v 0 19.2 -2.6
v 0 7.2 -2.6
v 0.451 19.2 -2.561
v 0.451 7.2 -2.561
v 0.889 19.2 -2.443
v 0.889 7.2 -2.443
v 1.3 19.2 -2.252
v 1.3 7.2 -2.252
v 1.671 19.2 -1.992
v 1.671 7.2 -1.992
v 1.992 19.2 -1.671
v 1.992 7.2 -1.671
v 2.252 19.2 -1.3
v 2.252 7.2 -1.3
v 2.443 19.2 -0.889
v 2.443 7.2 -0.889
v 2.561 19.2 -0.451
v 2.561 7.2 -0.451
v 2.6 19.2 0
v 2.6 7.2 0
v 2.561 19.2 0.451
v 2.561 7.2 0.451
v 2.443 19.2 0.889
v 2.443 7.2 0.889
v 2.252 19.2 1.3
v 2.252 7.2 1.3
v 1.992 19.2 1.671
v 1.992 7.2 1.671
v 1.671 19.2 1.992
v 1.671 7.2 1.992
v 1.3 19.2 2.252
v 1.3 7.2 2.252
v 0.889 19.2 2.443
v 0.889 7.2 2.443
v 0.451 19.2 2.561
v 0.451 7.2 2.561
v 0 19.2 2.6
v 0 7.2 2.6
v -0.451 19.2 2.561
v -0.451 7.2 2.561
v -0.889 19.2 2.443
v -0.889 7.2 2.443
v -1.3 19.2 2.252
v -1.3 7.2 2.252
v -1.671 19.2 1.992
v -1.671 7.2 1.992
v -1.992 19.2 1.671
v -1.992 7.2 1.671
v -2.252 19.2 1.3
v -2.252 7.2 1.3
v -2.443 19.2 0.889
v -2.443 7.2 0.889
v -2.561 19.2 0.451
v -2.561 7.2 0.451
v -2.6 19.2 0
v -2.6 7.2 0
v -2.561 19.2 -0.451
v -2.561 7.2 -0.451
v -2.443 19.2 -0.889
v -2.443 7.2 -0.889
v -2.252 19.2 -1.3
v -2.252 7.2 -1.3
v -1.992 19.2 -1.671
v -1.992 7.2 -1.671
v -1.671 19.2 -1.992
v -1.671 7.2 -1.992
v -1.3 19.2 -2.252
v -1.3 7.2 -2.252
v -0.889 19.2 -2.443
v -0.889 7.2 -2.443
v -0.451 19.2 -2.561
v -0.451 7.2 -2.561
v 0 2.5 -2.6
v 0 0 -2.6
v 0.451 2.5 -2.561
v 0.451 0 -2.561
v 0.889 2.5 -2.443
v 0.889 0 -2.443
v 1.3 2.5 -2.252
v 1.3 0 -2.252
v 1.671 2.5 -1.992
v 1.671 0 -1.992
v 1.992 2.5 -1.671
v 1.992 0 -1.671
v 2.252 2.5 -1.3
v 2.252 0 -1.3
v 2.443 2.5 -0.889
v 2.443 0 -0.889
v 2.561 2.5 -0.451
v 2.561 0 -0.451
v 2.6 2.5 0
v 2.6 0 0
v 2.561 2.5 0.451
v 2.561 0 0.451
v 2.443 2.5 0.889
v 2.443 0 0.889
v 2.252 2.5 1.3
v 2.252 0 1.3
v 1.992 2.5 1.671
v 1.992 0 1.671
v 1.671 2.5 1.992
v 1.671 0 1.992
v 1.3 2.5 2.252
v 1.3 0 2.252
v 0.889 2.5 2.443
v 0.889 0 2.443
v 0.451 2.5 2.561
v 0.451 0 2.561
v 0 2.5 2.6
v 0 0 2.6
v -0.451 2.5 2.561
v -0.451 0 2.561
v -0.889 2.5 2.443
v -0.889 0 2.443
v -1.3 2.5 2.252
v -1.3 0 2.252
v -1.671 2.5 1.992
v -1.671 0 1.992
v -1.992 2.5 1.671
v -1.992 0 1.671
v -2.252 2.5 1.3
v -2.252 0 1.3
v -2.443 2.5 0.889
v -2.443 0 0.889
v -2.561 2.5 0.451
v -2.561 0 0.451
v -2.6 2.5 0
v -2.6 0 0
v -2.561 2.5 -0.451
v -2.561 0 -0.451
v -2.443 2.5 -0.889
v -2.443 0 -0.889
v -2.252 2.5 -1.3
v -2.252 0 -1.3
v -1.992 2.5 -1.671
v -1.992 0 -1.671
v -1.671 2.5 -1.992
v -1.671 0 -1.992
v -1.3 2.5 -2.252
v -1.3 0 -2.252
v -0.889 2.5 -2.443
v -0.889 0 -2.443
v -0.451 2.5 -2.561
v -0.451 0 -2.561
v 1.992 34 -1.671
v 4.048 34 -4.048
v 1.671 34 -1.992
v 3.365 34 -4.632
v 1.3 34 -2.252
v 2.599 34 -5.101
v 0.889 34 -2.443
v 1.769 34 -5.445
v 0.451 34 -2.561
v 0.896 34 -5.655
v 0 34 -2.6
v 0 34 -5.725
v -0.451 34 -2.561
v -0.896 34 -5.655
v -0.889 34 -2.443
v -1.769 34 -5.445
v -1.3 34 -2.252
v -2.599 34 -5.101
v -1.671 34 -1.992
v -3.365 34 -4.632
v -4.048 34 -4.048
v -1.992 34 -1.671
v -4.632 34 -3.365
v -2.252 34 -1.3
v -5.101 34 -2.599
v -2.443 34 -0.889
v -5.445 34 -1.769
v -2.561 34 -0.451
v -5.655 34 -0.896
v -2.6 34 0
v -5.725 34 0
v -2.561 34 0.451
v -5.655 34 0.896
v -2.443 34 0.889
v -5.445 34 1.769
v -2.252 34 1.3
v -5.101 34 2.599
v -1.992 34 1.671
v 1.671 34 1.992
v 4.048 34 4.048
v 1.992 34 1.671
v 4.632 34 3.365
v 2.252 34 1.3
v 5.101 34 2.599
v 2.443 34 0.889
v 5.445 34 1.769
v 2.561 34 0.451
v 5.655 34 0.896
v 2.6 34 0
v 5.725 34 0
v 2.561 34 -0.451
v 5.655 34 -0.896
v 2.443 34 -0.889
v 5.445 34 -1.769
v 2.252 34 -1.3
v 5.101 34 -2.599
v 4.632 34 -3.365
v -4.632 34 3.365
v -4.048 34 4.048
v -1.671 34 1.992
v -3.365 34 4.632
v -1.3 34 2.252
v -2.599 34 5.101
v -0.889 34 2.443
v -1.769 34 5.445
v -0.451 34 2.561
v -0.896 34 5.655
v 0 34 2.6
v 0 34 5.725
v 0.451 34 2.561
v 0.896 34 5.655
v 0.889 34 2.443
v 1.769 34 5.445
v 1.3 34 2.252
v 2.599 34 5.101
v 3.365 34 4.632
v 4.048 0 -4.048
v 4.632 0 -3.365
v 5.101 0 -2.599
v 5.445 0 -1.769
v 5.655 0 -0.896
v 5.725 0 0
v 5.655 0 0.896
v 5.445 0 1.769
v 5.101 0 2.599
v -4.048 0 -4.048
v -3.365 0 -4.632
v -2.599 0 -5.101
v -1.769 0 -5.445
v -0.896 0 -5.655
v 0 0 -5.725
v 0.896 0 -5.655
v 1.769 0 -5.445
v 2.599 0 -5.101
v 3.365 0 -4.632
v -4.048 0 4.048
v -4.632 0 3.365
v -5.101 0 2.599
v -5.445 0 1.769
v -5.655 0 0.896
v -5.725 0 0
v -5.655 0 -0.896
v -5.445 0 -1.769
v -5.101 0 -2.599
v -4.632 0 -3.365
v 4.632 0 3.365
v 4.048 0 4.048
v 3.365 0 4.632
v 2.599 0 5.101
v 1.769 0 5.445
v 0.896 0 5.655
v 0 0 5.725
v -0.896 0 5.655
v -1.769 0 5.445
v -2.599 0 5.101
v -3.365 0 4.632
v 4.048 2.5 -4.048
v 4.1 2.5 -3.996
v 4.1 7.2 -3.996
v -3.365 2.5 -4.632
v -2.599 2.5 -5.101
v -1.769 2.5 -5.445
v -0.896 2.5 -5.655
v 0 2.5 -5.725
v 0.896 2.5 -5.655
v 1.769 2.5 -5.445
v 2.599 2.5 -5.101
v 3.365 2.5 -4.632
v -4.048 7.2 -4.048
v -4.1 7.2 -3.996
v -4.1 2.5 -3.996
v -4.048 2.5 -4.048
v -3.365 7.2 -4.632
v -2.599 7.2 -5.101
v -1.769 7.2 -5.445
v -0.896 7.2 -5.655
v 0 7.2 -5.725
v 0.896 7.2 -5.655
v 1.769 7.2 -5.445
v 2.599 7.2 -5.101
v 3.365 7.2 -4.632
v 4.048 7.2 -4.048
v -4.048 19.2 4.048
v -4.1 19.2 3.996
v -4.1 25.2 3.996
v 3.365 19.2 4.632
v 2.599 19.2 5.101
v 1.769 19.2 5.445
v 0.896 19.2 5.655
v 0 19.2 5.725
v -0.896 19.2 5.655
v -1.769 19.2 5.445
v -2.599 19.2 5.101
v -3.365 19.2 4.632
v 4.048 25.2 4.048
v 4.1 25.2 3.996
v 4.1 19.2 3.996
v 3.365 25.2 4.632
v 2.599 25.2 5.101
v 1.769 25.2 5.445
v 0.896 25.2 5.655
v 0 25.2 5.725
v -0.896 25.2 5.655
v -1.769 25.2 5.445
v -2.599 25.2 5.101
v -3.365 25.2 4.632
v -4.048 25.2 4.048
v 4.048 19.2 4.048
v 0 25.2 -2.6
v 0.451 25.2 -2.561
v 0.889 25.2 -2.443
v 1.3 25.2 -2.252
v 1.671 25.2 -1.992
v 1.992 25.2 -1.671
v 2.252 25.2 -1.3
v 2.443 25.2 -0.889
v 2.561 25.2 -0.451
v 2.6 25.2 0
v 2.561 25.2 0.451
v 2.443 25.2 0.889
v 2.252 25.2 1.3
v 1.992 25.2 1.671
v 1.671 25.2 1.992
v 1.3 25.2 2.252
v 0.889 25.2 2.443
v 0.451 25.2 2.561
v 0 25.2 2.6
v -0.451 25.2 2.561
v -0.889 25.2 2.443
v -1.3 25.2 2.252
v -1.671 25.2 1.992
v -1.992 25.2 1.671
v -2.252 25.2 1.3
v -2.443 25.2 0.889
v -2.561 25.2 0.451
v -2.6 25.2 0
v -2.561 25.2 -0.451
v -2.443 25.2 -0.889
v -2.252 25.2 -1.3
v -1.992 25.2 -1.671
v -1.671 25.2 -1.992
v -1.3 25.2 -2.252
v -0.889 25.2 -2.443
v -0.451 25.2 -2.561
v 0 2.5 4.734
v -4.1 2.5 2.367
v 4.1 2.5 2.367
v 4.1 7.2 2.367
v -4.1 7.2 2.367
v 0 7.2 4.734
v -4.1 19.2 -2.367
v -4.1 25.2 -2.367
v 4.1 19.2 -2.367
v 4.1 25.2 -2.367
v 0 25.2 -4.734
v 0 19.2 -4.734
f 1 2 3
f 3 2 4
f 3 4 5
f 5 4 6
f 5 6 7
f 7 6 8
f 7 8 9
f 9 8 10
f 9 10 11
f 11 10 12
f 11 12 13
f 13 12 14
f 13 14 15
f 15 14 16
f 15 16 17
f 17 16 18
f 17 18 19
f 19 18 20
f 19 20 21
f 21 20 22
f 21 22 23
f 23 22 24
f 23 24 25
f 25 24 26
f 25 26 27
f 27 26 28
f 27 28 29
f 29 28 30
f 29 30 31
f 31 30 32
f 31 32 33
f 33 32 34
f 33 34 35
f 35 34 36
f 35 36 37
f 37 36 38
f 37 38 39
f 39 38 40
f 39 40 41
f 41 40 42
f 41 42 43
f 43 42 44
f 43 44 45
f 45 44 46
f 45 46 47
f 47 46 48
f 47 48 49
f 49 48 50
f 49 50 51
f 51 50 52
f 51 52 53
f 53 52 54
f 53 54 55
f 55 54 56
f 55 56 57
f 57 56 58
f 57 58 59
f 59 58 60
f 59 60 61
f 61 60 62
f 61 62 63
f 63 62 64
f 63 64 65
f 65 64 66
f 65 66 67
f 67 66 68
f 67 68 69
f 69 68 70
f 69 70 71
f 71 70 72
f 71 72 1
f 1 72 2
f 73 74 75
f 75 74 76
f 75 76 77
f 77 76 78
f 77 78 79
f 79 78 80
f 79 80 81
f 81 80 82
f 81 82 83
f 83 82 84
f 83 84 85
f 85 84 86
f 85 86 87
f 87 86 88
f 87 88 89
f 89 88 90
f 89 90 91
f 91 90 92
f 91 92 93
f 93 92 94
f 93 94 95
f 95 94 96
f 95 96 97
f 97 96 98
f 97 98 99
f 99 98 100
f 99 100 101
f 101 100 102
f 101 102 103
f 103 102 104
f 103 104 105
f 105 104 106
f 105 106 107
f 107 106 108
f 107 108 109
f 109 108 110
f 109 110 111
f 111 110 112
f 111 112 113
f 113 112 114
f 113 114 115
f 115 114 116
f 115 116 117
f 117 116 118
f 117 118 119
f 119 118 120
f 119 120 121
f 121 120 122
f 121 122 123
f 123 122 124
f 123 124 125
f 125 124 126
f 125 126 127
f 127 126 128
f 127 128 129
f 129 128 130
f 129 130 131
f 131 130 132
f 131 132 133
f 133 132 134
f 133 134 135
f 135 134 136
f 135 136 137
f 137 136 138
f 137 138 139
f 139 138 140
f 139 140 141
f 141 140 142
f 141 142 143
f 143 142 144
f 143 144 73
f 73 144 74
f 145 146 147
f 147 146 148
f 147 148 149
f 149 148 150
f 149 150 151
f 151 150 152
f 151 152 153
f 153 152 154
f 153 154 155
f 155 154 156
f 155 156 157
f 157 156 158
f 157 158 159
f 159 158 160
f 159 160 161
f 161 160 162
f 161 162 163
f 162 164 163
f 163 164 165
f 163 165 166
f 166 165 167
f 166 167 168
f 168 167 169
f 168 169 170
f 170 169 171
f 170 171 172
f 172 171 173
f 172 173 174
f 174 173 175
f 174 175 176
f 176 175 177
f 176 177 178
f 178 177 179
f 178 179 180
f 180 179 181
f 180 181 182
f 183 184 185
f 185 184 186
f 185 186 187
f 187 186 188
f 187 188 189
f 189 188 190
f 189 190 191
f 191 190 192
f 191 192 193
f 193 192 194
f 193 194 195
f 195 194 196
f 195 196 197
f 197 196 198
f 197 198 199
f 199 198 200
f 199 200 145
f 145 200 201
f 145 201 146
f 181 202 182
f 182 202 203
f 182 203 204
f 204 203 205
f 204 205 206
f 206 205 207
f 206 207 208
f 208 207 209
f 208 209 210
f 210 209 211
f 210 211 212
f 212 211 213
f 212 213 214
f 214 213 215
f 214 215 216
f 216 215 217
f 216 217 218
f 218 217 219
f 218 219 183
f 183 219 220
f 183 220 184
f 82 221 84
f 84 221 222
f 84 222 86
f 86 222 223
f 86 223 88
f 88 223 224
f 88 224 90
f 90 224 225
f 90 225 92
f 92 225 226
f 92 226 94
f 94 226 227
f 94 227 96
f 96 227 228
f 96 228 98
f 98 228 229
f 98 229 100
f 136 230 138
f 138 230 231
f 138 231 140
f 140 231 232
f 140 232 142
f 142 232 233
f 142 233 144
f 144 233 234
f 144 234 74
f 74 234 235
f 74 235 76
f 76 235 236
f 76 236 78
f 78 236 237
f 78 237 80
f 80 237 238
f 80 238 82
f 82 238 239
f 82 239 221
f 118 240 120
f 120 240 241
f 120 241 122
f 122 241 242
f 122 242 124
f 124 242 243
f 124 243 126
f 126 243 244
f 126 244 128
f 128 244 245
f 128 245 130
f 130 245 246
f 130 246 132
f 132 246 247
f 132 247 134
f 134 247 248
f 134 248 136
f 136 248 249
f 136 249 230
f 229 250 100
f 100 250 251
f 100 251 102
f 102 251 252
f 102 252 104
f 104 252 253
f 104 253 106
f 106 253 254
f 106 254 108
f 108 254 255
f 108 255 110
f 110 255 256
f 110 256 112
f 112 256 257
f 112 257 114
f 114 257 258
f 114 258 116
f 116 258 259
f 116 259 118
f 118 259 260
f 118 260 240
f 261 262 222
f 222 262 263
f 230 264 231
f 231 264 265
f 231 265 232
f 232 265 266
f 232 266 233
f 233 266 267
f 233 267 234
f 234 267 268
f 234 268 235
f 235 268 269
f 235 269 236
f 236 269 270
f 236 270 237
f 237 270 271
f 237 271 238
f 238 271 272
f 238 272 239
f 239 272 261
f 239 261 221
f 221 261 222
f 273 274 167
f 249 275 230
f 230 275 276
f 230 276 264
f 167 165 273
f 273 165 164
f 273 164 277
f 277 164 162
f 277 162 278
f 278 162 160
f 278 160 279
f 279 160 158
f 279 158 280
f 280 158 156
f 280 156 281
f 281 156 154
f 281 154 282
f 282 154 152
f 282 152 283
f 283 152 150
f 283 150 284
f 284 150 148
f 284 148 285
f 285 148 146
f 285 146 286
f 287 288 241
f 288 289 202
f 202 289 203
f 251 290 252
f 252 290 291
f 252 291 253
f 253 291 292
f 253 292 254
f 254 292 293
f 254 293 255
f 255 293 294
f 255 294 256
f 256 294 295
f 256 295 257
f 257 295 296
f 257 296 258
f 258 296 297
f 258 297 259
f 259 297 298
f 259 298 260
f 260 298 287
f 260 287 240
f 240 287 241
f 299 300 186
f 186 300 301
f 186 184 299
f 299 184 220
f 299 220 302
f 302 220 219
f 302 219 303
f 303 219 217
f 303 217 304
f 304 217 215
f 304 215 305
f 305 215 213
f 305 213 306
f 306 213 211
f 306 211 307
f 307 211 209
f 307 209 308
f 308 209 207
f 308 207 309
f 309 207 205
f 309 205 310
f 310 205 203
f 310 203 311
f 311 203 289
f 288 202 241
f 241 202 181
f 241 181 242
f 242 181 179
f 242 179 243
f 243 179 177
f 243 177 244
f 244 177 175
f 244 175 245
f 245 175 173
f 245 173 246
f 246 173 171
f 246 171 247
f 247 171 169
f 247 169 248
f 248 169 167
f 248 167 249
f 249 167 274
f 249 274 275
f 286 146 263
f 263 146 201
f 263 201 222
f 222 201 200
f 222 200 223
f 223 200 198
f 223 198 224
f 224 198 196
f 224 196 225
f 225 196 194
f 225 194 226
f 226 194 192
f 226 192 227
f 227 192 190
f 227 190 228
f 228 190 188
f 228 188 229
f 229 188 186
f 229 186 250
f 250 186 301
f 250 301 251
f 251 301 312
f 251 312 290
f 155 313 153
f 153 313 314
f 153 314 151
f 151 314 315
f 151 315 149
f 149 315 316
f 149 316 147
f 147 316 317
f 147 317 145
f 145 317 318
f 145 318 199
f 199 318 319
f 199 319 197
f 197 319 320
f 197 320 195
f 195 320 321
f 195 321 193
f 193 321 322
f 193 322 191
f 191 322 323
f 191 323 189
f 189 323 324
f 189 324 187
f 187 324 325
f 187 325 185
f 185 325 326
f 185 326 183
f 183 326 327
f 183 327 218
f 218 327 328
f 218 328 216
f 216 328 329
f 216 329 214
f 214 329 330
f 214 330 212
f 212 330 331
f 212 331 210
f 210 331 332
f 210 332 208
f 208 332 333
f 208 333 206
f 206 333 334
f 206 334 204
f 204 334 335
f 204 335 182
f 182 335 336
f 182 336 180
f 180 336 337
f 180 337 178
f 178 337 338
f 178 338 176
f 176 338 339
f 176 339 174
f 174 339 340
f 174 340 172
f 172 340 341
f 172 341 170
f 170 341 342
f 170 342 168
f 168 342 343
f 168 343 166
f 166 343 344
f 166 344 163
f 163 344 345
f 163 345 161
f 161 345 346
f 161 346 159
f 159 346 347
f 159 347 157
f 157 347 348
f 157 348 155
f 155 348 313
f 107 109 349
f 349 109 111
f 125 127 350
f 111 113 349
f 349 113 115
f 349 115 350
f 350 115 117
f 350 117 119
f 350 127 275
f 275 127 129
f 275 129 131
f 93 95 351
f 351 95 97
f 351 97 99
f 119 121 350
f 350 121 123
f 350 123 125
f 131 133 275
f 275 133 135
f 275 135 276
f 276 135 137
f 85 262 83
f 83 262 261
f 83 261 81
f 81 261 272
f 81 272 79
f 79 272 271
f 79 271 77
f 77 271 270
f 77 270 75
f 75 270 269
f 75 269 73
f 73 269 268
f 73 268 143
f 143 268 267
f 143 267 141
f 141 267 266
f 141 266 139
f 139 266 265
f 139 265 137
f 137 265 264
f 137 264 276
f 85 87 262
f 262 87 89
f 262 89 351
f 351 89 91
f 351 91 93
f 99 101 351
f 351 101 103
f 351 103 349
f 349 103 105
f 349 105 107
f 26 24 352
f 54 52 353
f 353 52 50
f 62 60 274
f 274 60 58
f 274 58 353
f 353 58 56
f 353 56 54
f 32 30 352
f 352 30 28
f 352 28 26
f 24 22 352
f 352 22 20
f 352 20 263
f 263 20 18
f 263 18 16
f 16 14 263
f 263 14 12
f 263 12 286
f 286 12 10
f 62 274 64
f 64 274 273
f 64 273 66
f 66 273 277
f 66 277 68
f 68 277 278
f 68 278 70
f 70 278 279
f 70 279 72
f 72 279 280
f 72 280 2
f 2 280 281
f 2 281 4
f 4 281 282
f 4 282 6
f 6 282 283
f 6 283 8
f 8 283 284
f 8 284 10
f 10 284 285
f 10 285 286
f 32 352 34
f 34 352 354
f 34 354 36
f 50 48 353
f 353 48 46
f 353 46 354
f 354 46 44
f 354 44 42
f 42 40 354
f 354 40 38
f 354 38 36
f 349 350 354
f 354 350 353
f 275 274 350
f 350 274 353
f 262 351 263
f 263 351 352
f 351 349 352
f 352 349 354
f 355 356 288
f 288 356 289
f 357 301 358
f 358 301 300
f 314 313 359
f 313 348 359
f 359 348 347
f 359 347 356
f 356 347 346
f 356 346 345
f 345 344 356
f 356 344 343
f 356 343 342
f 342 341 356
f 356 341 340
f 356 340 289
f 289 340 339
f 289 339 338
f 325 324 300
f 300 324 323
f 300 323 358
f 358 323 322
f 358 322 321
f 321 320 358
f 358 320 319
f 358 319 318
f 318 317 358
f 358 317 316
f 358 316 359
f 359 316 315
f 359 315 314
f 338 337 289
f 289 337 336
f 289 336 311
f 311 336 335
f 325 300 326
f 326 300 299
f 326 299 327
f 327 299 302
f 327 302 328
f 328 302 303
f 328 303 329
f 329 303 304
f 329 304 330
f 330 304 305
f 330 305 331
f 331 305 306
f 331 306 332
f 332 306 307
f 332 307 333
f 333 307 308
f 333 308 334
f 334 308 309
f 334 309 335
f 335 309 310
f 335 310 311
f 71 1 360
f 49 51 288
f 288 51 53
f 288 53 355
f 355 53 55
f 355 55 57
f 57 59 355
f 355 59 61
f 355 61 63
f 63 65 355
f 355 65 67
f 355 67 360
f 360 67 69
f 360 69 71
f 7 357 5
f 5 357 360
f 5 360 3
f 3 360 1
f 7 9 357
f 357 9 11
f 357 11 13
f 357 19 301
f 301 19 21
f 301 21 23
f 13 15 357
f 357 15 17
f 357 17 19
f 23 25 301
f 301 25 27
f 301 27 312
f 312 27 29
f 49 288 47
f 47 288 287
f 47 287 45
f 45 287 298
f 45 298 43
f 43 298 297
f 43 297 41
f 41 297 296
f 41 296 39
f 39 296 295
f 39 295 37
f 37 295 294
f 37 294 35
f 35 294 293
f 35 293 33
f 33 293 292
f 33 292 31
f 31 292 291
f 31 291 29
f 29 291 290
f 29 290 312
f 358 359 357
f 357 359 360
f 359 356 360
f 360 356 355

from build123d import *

# Parameters (mm, degrees)
SKETCH1_R           = 5.725
SKETCH1_R_2         = 3
BOSS_EXTRUDE1_DEPTH = 34
SKETCH2_R           = 5.725
BOSS_EXTRUDE2_DEPTH = 34
SKETCH3_R           = 2.6
CUT_EXTRUDE1_DEPTH  = 40
CUT_EXTRUDE2_DEPTH  = 4.7
SKETCH5_W           = 8.2
SKETCH5_H           = 4.7
CUT_EXTRUDE3_DEPTH  = 10
CUT_EXTRUDE10_DEPTH = 6


with BuildPart() as part:
    # Sketch1 → Boss-Extrude1 (new body)
    with BuildSketch(Plane(origin=(0, 0, 0), x_dir=(1, 0, 0), z_dir=(0, 1, 0))):
        with Locations(Location((0, 0, 0), (0, 0, 270))):
            Circle(SKETCH1_R)
        with Locations(Location((0, 0, 0), (0, 0, 270))):
            Circle(SKETCH1_R_2, mode=Mode.SUBTRACT)
    extrude(amount=BOSS_EXTRUDE1_DEPTH)

    # Sketch2 → Boss-Extrude2 (add)
    with BuildSketch(Plane(origin=(0, 0, 0), x_dir=(-1, 0, 0), z_dir=(0, -1, 0))):
        with Locations(Location((0, 0, 0), (0, 0, 270))):
            Circle(SKETCH2_R)
    extrude(amount=-BOSS_EXTRUDE2_DEPTH)

    # Sketch3 → Cut-Extrude1 (cut)
    with BuildSketch(Plane(origin=(0, 0, 0), x_dir=(-1, 0, 0), z_dir=(0, -1, 0))):
        with Locations(Location((0, 0, 0), (0, 0, 90))):
            Circle(SKETCH3_R)
    extrude(amount=-CUT_EXTRUDE1_DEPTH, mode=Mode.SUBTRACT)

    # Sketch4 → Cut-Extrude2 (cut)
    with BuildSketch(Plane(origin=(0, 7.2, 0), x_dir=(1, 0, 0), z_dir=(0, 1, 0))):
        Polygon((0, -4.734272207), (4.1, -2.367136104), (4.1, 2.367136104), (0, 4.734272207), (-4.1, 2.367136104), (-4.1, -2.367136104), align=None)
    extrude(amount=-CUT_EXTRUDE2_DEPTH, mode=Mode.SUBTRACT)

    # Sketch5 → Cut-Extrude3 (cut)
    with BuildSketch(Plane.XY):
        with Locations((0, 4.85)):
            Rectangle(SKETCH5_W, SKETCH5_H)
    extrude(amount=-CUT_EXTRUDE3_DEPTH, mode=Mode.SUBTRACT)

    # Sketch6 → Cut-Extrude10 (cut)
    with BuildSketch(Plane(origin=(0, 19.2, 0), x_dir=(1, 0, 0), z_dir=(0, 1, 0))):
        Polygon((-4.1, 2.367136104), (-4.1, -6.0044428), (-4.1, -15.659528102), (4.1, -15.659528102), (4.1, -2.367136104), (4.1, 2.367136104), align=None)
        Polygon((4.1, 2.367136104), (-4.1, 2.367136104), (0, 4.734272207), align=None)
    extrude(amount=CUT_EXTRUDE10_DEPTH, mode=Mode.SUBTRACT)


solid = part.part
